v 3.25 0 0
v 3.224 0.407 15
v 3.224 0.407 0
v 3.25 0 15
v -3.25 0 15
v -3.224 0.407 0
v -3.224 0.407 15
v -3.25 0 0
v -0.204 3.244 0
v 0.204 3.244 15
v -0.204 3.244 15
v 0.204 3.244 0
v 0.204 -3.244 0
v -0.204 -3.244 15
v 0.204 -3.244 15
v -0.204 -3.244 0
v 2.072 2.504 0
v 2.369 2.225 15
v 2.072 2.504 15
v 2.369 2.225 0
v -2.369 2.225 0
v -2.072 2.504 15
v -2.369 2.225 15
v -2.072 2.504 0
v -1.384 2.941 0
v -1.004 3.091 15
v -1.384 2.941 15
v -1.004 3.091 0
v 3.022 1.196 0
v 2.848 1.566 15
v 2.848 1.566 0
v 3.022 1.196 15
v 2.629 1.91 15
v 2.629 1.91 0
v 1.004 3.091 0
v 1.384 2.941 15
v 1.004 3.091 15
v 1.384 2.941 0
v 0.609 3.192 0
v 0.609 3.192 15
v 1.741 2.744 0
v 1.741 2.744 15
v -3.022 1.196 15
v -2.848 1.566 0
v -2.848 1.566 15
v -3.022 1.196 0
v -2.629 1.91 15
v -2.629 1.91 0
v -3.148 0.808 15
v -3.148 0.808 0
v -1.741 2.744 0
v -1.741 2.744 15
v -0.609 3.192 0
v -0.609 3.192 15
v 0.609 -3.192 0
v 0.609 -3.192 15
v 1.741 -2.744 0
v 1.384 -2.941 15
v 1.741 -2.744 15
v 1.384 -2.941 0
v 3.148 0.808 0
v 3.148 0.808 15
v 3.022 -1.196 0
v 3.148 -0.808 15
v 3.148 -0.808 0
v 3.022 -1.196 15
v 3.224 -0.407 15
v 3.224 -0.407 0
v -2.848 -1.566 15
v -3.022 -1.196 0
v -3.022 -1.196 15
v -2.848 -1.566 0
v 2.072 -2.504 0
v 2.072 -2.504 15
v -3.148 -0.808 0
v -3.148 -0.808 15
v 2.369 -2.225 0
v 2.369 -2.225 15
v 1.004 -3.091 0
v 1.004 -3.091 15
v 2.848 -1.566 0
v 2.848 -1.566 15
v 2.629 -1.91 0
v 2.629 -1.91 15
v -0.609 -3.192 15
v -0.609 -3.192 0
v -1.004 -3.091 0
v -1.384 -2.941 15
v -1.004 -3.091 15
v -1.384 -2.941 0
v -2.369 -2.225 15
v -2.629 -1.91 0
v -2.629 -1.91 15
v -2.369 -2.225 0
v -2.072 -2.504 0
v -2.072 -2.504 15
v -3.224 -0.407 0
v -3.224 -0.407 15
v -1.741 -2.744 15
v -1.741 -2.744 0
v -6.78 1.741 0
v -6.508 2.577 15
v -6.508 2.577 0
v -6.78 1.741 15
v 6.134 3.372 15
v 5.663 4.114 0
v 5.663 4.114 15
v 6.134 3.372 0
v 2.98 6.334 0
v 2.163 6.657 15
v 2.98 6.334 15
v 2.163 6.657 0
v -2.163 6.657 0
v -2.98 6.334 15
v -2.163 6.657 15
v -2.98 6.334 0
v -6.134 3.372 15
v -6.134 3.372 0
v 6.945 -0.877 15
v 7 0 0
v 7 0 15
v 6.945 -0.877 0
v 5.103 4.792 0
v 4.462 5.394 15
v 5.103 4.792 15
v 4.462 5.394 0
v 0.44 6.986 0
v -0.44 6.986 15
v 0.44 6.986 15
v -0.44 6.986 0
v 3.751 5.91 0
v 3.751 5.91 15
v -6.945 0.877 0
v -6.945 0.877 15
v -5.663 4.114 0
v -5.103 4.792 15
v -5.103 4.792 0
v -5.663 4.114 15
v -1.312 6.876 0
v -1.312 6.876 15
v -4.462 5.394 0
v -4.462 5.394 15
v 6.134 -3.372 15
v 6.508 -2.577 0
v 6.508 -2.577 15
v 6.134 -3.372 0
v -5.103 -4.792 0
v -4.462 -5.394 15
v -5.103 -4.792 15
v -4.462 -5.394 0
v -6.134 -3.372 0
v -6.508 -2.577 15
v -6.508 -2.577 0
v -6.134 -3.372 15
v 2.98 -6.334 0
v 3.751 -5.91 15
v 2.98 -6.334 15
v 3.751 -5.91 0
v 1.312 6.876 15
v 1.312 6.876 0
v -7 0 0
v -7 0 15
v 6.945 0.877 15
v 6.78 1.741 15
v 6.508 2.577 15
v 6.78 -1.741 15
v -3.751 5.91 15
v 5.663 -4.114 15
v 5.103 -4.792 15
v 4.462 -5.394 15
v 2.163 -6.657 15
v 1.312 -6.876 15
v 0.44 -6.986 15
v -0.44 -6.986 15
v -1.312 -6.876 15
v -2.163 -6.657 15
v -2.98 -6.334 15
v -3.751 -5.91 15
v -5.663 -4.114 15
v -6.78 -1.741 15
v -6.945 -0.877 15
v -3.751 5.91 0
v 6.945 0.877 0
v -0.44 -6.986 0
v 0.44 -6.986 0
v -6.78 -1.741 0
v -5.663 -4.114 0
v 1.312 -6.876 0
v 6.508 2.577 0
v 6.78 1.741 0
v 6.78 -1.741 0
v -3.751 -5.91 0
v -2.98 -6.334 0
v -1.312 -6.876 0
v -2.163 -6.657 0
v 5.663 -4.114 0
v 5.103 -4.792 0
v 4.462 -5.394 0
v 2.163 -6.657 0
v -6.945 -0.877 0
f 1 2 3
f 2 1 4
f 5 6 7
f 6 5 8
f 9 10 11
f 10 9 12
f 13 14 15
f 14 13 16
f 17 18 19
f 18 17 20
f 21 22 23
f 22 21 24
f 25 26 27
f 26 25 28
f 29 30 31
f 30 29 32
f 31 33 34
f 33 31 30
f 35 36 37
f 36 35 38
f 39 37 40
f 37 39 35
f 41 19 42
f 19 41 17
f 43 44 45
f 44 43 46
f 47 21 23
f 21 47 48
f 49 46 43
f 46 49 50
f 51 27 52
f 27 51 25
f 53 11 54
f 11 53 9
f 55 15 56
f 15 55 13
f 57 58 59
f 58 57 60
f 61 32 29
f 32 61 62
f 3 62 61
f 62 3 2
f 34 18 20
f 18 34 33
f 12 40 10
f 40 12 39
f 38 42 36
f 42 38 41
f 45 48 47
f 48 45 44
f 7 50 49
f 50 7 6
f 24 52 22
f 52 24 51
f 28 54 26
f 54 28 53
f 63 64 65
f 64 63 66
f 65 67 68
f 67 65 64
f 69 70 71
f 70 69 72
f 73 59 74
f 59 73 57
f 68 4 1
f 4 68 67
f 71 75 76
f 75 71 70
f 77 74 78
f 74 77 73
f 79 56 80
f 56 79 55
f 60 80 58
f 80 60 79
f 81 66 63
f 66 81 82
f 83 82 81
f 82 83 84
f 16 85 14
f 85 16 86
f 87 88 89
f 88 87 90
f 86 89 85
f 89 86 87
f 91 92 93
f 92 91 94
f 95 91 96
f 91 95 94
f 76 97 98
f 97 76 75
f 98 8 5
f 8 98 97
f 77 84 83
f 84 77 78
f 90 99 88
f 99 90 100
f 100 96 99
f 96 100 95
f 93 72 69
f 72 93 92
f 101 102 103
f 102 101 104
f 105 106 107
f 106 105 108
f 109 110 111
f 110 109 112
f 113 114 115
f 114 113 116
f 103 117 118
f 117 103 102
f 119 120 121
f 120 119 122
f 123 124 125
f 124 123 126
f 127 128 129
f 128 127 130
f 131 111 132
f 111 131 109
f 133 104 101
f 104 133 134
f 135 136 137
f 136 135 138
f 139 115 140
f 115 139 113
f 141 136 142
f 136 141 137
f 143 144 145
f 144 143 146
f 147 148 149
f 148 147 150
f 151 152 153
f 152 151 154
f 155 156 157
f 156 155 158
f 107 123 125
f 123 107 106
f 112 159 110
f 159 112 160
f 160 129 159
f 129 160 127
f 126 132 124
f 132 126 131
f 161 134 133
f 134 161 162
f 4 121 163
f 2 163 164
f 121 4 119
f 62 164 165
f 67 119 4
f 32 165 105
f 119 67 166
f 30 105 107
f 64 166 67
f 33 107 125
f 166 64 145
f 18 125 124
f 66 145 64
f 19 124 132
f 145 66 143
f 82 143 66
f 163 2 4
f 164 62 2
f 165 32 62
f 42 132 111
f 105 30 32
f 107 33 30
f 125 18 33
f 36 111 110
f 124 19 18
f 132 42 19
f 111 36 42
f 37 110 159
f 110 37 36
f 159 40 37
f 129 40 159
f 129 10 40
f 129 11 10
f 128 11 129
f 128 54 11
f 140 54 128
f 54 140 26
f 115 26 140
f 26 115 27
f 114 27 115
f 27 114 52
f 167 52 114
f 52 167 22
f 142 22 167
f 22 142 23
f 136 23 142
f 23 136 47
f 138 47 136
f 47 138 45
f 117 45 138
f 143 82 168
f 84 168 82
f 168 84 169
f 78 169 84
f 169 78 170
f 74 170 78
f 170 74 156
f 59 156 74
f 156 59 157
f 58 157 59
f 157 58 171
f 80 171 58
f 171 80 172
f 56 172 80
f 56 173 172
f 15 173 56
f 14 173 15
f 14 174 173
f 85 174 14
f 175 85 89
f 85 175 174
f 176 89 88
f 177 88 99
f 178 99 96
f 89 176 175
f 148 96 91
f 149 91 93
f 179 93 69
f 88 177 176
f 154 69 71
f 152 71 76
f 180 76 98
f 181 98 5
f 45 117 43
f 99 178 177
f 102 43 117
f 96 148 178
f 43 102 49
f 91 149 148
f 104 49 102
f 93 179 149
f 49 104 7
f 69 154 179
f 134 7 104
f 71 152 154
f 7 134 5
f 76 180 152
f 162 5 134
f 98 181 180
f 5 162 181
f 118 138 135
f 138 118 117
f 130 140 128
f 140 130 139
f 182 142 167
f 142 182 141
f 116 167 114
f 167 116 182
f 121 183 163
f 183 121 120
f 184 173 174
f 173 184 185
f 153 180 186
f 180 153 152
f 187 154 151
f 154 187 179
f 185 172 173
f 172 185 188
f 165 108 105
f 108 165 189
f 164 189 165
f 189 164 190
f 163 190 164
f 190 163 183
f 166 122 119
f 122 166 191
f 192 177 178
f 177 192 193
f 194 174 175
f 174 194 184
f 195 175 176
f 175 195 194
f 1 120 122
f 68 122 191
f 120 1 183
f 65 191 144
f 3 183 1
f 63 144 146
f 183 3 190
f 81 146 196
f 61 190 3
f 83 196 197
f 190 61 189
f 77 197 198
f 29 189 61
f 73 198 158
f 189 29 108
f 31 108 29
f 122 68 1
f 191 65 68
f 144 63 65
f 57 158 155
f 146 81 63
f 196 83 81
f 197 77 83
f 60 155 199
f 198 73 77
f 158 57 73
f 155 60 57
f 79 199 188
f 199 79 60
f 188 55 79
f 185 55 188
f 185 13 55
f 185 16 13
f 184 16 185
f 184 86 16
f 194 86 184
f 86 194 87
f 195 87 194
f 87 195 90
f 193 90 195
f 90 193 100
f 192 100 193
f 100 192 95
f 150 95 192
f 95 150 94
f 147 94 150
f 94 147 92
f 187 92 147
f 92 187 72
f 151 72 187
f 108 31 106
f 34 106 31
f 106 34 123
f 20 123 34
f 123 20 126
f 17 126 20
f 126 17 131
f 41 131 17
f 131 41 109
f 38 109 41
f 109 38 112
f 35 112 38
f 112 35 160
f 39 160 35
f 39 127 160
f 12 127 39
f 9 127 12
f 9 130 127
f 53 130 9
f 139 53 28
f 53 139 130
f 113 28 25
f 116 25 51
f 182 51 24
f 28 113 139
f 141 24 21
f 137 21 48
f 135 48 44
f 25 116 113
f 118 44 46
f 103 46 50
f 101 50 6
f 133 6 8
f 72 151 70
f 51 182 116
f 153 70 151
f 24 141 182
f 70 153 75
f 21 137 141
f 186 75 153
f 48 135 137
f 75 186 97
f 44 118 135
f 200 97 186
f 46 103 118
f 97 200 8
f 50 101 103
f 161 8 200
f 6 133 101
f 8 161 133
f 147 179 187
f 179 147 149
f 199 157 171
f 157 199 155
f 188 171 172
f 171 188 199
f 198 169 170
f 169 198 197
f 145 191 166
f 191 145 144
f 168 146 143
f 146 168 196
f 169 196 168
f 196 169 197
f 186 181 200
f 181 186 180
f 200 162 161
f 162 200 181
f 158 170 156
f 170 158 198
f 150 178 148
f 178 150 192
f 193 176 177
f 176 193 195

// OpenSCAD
$fn = 50;


difference() {
	union() {
		cylinder(h = 15, r = 7.0000000000);
	}
	union() {
		translate(v = [0.0000000000, 0.0000000000, -100.0000000000]) {
			cylinder(h = 200, r = 3.2500000000);
		}
		cylinder(h = 15, r = 1.8000000000);
		cylinder(h = 15, r = 1.8000000000);
		cylinder(h = 15, r = 1.8000000000);
	}
}
